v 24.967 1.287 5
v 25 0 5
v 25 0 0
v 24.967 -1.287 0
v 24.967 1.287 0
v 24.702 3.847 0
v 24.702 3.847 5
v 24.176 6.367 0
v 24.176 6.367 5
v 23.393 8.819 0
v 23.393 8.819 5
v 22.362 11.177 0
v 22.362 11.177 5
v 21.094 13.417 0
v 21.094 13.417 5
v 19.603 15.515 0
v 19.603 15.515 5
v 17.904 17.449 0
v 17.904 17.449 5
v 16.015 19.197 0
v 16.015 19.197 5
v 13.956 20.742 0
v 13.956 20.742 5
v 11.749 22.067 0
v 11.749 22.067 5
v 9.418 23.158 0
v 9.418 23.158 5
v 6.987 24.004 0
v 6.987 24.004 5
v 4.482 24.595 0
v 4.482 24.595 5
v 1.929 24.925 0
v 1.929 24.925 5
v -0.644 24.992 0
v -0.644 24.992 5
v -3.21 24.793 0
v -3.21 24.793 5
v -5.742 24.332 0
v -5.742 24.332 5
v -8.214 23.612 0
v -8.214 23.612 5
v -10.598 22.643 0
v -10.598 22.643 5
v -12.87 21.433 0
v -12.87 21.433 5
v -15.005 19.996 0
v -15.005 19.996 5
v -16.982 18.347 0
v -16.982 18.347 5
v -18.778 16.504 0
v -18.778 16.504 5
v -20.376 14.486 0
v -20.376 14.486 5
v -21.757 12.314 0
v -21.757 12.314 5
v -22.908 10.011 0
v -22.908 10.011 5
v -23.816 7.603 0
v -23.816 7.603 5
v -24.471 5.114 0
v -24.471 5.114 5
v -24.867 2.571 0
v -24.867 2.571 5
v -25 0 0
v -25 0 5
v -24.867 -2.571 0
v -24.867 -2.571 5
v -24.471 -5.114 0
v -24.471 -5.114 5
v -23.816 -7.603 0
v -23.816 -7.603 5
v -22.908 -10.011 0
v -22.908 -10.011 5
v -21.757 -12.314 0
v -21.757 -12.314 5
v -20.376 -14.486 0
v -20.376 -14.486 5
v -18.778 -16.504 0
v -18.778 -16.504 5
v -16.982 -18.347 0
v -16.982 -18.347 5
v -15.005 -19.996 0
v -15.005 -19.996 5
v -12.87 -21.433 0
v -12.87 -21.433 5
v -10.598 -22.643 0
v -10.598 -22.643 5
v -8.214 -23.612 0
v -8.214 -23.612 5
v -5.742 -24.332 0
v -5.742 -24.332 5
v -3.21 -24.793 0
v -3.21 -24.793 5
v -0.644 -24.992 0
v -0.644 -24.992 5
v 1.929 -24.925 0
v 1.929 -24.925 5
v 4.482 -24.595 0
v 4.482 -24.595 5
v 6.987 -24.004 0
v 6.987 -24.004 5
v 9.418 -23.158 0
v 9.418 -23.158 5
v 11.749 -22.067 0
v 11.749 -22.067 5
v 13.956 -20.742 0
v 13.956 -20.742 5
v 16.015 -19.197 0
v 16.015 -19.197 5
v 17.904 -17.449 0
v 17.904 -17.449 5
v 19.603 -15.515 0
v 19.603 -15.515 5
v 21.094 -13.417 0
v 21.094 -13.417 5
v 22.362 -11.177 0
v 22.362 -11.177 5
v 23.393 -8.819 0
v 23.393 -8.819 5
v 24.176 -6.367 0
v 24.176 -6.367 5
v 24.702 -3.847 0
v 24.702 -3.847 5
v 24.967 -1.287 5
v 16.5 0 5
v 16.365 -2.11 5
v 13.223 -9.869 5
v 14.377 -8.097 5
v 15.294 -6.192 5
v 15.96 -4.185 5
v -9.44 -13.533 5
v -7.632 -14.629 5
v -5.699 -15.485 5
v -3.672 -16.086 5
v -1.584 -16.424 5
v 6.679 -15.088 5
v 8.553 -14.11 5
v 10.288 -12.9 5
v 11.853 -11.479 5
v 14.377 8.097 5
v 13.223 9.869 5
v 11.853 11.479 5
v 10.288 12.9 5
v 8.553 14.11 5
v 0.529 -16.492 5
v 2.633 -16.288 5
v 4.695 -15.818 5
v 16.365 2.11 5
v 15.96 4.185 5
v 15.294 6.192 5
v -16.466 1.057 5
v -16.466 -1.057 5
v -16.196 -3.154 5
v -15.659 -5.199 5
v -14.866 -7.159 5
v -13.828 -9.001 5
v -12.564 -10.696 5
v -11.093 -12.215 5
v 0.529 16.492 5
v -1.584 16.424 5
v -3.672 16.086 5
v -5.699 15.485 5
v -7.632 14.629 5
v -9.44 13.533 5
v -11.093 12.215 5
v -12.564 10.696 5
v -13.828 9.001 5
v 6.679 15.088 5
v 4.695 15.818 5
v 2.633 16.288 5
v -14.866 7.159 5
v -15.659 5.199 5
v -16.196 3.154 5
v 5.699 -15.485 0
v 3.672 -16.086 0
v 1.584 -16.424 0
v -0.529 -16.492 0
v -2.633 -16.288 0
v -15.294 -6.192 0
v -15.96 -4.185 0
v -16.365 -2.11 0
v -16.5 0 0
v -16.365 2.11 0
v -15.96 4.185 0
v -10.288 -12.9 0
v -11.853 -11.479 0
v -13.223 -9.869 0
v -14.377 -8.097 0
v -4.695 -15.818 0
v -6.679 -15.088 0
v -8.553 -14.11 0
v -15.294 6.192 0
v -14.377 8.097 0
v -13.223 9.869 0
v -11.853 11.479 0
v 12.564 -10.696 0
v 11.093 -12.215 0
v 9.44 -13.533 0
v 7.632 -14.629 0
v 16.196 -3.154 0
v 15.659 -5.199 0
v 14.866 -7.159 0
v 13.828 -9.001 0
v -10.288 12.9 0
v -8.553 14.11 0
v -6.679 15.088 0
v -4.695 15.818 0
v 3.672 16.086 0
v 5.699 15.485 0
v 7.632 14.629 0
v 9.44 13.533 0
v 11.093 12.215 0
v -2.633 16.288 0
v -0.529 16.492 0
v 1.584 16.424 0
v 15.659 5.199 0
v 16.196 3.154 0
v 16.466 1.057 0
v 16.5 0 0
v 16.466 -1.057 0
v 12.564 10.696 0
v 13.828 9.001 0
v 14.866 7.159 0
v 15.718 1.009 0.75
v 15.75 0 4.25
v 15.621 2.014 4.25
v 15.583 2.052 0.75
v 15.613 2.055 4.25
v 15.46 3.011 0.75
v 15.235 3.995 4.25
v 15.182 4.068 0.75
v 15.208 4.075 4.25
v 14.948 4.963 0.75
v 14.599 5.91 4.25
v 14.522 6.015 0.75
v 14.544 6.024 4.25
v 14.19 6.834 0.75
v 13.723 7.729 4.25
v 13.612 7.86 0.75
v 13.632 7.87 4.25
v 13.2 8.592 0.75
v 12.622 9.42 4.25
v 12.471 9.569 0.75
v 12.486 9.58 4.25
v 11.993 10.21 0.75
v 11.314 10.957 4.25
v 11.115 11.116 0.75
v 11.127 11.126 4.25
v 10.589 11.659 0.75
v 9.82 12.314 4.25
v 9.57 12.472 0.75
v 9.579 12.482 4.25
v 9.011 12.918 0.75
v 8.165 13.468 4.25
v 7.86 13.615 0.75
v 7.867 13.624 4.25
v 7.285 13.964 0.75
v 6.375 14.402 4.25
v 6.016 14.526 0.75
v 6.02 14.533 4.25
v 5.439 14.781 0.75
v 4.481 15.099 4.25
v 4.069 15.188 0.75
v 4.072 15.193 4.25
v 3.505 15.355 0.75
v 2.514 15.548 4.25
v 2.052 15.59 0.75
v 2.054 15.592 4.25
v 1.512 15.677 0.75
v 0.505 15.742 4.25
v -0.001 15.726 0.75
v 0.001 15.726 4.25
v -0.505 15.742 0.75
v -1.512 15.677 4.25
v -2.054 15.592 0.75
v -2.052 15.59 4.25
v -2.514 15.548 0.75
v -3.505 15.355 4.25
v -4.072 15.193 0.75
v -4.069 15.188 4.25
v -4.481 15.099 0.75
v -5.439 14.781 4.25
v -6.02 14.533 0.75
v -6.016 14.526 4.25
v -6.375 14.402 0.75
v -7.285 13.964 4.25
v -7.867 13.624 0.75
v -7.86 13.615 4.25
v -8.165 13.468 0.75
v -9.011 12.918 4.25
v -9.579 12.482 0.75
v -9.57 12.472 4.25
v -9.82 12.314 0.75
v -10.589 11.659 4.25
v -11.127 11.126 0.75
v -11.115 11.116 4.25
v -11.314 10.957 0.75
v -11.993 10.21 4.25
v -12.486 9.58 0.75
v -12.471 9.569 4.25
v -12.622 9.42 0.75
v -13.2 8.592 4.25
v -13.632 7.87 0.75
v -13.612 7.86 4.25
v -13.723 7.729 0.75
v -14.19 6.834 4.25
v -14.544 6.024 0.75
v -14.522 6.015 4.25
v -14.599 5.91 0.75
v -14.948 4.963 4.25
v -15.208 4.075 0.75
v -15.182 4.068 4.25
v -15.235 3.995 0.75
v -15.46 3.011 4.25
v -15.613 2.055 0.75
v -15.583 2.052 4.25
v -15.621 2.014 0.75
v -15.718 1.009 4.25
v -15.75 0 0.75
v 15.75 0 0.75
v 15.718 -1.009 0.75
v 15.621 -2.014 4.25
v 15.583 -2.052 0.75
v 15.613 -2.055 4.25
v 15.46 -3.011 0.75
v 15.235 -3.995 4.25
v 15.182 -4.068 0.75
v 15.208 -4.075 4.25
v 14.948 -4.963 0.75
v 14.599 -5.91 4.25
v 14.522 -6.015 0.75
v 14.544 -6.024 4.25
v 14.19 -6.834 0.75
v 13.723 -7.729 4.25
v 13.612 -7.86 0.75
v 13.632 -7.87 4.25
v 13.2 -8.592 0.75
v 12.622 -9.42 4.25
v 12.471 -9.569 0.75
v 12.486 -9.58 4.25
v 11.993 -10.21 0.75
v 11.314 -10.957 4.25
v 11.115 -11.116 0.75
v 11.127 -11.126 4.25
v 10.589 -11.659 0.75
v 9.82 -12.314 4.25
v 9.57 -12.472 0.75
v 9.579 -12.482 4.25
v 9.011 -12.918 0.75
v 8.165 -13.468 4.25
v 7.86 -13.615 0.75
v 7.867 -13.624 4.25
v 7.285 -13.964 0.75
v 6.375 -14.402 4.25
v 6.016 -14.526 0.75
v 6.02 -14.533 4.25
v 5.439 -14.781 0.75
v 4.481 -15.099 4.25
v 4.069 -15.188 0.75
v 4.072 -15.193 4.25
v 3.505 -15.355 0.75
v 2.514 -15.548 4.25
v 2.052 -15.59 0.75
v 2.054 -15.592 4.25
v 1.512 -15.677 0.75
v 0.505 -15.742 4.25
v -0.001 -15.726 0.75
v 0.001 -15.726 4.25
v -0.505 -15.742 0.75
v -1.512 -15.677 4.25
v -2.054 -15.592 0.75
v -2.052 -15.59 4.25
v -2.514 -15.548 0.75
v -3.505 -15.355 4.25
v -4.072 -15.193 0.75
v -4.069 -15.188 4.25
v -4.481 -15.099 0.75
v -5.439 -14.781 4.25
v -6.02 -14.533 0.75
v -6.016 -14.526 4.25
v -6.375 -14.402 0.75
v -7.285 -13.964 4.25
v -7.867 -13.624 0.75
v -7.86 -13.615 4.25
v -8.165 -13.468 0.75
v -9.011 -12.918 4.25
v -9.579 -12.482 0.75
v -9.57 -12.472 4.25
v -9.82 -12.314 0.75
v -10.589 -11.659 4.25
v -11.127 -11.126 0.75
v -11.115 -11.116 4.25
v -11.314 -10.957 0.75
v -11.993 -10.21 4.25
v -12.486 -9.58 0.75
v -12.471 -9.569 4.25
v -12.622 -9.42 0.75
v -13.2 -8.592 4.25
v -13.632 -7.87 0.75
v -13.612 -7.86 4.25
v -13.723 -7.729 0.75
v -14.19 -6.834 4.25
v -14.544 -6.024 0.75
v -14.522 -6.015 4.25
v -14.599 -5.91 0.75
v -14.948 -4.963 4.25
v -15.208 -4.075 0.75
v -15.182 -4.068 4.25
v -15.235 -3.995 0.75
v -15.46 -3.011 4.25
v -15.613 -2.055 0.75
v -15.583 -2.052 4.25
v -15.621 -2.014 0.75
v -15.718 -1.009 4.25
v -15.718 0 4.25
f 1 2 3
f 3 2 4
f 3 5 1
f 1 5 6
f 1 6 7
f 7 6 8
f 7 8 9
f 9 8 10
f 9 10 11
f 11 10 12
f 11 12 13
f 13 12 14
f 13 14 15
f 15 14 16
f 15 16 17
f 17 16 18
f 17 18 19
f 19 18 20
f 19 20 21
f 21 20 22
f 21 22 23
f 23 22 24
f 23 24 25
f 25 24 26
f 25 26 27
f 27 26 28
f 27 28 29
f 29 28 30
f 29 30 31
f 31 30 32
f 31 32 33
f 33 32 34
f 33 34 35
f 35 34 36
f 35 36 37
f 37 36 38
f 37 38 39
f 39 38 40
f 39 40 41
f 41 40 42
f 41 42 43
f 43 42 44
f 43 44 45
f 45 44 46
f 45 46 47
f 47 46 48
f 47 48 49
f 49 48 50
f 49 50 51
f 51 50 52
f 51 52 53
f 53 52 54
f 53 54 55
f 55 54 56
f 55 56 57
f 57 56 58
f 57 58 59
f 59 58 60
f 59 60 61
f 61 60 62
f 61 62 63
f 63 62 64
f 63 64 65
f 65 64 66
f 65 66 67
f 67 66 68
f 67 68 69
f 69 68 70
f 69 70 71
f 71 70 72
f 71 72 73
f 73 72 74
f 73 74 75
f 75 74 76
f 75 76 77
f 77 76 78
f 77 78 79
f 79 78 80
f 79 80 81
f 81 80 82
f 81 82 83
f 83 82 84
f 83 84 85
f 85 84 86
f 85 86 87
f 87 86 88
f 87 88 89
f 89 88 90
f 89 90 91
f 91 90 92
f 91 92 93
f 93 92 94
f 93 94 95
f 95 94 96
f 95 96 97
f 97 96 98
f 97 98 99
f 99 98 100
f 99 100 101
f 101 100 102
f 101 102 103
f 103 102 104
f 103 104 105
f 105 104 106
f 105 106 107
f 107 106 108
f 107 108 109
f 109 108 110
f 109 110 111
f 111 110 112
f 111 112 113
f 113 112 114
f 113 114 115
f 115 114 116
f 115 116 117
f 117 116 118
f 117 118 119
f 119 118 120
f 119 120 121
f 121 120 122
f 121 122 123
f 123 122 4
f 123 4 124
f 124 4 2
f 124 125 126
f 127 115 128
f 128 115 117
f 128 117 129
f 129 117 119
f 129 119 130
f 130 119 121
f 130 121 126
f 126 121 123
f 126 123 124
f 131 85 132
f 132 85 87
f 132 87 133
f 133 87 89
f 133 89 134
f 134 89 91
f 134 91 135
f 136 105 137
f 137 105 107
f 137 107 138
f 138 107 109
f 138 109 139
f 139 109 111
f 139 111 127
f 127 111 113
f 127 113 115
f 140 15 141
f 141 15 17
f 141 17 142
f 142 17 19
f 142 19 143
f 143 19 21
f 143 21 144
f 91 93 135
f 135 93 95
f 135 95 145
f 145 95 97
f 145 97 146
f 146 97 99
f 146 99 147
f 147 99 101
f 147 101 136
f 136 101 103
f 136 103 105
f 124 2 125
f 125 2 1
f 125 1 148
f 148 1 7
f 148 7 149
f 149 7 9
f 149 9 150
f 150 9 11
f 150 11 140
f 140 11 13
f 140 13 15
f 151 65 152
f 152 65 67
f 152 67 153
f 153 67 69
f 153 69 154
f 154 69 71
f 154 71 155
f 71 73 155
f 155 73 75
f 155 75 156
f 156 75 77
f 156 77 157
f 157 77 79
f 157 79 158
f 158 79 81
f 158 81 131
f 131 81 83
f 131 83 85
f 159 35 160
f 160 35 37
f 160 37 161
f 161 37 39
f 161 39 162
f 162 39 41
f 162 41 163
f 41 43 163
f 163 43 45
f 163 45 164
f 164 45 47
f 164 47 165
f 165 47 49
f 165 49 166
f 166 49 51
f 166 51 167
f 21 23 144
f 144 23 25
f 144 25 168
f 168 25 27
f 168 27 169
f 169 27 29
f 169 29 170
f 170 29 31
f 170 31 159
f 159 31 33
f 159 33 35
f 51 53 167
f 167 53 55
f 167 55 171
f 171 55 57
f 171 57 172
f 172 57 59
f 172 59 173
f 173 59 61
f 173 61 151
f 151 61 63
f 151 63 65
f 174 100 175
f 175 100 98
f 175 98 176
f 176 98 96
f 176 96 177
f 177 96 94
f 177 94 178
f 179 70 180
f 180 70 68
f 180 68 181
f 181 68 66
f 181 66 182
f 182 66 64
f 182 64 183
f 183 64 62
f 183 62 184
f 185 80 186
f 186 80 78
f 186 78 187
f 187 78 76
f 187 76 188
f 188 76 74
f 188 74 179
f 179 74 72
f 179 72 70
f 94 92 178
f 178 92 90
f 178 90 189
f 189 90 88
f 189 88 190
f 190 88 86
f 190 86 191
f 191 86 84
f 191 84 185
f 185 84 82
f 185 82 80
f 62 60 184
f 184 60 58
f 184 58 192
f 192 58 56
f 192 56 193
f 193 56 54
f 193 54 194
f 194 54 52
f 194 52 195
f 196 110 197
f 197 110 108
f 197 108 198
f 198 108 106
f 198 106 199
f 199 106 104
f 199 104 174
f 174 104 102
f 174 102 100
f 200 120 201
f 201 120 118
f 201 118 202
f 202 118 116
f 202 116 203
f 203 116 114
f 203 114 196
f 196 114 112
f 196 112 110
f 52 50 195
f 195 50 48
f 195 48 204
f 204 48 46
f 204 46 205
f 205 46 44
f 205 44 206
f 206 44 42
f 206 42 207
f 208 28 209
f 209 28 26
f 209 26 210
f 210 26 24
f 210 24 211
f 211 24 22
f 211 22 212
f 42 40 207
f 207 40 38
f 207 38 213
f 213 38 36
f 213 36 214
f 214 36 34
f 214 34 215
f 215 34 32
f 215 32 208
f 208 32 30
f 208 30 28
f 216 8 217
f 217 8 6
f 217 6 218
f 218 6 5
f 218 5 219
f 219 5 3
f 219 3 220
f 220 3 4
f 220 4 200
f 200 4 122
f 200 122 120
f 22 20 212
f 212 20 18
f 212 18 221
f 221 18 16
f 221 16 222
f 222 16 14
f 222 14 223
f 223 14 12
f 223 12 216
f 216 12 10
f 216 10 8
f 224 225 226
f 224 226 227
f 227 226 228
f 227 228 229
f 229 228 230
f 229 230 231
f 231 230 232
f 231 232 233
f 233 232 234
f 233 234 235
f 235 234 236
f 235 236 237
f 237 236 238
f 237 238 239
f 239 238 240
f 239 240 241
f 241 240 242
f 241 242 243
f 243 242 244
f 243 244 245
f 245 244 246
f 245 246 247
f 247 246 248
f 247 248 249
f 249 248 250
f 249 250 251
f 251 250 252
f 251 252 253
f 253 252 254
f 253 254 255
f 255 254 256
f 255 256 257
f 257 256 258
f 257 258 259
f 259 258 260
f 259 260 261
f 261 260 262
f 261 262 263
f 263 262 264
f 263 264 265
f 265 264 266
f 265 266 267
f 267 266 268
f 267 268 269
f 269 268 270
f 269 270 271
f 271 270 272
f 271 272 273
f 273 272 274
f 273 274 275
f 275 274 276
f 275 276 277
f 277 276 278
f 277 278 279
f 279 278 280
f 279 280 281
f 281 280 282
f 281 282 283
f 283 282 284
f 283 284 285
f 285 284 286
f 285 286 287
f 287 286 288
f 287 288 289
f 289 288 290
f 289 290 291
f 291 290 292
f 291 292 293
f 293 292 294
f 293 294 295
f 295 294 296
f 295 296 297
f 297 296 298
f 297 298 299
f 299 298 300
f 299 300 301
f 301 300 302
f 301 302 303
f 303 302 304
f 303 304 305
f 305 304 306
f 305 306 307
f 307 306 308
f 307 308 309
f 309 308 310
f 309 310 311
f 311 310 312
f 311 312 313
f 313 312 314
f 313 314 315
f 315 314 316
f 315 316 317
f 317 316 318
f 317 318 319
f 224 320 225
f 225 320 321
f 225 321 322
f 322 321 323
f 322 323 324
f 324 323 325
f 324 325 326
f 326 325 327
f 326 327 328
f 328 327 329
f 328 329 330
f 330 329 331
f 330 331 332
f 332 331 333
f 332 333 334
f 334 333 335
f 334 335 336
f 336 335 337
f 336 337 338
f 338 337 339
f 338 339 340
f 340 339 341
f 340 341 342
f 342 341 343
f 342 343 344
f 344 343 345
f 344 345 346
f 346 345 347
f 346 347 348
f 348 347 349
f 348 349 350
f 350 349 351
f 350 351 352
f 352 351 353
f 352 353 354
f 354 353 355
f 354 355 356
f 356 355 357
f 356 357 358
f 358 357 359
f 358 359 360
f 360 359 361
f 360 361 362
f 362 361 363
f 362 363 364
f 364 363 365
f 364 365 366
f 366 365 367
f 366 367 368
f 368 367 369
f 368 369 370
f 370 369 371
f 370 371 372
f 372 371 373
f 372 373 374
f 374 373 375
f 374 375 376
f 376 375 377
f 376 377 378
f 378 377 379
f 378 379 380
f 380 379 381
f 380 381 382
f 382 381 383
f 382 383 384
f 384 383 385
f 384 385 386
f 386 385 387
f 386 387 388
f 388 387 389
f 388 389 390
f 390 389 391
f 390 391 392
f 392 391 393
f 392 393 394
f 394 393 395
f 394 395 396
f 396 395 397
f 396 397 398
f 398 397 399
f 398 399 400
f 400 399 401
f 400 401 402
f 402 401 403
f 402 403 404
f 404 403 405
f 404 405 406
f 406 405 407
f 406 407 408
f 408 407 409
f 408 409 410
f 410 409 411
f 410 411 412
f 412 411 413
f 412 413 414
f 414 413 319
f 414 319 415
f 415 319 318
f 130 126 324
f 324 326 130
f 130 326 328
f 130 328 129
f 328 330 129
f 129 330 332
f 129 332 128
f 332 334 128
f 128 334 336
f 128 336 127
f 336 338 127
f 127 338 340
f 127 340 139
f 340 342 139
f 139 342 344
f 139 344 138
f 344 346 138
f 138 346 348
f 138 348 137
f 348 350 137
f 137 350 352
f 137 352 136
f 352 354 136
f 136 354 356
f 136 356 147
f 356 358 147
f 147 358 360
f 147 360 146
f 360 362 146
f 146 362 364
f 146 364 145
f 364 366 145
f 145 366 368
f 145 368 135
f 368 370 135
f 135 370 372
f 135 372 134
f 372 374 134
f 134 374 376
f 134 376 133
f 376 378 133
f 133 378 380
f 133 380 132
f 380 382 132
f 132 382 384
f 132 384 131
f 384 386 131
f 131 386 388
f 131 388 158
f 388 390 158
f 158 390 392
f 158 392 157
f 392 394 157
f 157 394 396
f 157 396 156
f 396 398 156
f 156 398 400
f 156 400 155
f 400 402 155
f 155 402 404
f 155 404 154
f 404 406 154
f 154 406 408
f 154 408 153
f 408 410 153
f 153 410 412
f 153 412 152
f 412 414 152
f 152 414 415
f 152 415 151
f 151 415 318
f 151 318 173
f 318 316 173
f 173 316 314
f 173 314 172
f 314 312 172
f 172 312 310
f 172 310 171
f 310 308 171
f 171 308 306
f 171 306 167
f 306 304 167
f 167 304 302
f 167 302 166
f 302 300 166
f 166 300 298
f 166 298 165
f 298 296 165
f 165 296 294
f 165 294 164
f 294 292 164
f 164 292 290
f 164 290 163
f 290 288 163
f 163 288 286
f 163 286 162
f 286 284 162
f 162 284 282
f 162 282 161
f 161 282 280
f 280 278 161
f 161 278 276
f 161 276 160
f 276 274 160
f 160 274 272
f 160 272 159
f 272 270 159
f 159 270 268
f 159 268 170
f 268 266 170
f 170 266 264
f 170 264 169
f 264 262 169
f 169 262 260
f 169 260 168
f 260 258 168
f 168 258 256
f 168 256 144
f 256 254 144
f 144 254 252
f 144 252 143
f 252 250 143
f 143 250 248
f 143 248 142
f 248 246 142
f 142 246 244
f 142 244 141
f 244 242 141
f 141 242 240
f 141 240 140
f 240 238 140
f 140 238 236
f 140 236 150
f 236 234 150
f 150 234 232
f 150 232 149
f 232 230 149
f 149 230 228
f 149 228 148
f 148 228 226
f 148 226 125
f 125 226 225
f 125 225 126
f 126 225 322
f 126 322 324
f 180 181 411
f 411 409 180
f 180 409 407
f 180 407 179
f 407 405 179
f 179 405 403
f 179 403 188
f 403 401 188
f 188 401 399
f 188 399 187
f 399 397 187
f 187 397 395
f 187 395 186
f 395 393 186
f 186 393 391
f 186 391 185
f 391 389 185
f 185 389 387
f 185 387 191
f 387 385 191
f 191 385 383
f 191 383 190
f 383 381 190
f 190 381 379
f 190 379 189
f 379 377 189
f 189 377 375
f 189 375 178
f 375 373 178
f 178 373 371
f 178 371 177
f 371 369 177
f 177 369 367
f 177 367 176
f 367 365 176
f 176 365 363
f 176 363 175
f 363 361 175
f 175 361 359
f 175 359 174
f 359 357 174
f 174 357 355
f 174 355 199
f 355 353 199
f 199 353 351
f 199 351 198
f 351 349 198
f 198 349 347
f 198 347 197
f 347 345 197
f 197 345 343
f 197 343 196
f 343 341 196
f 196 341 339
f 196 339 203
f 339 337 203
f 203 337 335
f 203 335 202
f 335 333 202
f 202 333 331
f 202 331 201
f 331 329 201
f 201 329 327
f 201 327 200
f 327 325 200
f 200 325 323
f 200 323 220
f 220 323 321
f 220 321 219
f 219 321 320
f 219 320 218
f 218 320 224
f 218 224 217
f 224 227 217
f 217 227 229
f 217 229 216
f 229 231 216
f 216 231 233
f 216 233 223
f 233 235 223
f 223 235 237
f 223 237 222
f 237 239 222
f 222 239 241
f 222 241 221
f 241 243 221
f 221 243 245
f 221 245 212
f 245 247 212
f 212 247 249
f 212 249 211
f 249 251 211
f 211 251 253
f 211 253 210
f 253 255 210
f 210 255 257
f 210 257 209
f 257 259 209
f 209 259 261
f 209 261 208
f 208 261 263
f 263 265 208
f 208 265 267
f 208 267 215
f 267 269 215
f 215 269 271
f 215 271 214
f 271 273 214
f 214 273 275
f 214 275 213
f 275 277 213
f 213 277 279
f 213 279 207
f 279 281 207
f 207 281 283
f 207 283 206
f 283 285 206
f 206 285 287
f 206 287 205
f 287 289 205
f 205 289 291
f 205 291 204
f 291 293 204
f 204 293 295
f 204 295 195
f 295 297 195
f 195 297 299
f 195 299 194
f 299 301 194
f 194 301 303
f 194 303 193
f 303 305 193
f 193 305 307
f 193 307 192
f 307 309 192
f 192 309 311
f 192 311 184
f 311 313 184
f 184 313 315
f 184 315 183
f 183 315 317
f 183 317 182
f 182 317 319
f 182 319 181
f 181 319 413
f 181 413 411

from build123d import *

# Parameters (mm, degrees)
GUARD_BASE_R     = 25
GUARD_DEPTH      = 5
AXLE_HOLE_BASE_R = 15.75
AXLE_HOLE_DEPTH  = 6


with BuildPart() as part:
    # Guard base → Guard (new body)
    with BuildSketch(Plane.XY):
        Circle(GUARD_BASE_R)
    extrude(amount=GUARD_DEPTH)

    # Axle hole base → Axle hole (cut, through all)
    with BuildSketch(Plane.XY.offset(5)):
        Circle(AXLE_HOLE_BASE_R)
    extrude(amount=-AXLE_HOLE_DEPTH, mode=Mode.SUBTRACT)

    # Mate ring room base → Mate ring room (revolve, cut)
    with BuildSketch(Plane(origin=(0, 0, 0), x_dir=(1, 0, 0), z_dir=(0, 1, 0))):
        Polygon((15.75, -5), (16.5, -5), (15.75, -4.25), align=None)
        Polygon((15.75, 0), (16.5, 0), (15.75, -0.75), align=None)
    revolve(axis=Axis((0, 0, 0), (0, 0, -1)), mode=Mode.SUBTRACT)


solid = part.part
